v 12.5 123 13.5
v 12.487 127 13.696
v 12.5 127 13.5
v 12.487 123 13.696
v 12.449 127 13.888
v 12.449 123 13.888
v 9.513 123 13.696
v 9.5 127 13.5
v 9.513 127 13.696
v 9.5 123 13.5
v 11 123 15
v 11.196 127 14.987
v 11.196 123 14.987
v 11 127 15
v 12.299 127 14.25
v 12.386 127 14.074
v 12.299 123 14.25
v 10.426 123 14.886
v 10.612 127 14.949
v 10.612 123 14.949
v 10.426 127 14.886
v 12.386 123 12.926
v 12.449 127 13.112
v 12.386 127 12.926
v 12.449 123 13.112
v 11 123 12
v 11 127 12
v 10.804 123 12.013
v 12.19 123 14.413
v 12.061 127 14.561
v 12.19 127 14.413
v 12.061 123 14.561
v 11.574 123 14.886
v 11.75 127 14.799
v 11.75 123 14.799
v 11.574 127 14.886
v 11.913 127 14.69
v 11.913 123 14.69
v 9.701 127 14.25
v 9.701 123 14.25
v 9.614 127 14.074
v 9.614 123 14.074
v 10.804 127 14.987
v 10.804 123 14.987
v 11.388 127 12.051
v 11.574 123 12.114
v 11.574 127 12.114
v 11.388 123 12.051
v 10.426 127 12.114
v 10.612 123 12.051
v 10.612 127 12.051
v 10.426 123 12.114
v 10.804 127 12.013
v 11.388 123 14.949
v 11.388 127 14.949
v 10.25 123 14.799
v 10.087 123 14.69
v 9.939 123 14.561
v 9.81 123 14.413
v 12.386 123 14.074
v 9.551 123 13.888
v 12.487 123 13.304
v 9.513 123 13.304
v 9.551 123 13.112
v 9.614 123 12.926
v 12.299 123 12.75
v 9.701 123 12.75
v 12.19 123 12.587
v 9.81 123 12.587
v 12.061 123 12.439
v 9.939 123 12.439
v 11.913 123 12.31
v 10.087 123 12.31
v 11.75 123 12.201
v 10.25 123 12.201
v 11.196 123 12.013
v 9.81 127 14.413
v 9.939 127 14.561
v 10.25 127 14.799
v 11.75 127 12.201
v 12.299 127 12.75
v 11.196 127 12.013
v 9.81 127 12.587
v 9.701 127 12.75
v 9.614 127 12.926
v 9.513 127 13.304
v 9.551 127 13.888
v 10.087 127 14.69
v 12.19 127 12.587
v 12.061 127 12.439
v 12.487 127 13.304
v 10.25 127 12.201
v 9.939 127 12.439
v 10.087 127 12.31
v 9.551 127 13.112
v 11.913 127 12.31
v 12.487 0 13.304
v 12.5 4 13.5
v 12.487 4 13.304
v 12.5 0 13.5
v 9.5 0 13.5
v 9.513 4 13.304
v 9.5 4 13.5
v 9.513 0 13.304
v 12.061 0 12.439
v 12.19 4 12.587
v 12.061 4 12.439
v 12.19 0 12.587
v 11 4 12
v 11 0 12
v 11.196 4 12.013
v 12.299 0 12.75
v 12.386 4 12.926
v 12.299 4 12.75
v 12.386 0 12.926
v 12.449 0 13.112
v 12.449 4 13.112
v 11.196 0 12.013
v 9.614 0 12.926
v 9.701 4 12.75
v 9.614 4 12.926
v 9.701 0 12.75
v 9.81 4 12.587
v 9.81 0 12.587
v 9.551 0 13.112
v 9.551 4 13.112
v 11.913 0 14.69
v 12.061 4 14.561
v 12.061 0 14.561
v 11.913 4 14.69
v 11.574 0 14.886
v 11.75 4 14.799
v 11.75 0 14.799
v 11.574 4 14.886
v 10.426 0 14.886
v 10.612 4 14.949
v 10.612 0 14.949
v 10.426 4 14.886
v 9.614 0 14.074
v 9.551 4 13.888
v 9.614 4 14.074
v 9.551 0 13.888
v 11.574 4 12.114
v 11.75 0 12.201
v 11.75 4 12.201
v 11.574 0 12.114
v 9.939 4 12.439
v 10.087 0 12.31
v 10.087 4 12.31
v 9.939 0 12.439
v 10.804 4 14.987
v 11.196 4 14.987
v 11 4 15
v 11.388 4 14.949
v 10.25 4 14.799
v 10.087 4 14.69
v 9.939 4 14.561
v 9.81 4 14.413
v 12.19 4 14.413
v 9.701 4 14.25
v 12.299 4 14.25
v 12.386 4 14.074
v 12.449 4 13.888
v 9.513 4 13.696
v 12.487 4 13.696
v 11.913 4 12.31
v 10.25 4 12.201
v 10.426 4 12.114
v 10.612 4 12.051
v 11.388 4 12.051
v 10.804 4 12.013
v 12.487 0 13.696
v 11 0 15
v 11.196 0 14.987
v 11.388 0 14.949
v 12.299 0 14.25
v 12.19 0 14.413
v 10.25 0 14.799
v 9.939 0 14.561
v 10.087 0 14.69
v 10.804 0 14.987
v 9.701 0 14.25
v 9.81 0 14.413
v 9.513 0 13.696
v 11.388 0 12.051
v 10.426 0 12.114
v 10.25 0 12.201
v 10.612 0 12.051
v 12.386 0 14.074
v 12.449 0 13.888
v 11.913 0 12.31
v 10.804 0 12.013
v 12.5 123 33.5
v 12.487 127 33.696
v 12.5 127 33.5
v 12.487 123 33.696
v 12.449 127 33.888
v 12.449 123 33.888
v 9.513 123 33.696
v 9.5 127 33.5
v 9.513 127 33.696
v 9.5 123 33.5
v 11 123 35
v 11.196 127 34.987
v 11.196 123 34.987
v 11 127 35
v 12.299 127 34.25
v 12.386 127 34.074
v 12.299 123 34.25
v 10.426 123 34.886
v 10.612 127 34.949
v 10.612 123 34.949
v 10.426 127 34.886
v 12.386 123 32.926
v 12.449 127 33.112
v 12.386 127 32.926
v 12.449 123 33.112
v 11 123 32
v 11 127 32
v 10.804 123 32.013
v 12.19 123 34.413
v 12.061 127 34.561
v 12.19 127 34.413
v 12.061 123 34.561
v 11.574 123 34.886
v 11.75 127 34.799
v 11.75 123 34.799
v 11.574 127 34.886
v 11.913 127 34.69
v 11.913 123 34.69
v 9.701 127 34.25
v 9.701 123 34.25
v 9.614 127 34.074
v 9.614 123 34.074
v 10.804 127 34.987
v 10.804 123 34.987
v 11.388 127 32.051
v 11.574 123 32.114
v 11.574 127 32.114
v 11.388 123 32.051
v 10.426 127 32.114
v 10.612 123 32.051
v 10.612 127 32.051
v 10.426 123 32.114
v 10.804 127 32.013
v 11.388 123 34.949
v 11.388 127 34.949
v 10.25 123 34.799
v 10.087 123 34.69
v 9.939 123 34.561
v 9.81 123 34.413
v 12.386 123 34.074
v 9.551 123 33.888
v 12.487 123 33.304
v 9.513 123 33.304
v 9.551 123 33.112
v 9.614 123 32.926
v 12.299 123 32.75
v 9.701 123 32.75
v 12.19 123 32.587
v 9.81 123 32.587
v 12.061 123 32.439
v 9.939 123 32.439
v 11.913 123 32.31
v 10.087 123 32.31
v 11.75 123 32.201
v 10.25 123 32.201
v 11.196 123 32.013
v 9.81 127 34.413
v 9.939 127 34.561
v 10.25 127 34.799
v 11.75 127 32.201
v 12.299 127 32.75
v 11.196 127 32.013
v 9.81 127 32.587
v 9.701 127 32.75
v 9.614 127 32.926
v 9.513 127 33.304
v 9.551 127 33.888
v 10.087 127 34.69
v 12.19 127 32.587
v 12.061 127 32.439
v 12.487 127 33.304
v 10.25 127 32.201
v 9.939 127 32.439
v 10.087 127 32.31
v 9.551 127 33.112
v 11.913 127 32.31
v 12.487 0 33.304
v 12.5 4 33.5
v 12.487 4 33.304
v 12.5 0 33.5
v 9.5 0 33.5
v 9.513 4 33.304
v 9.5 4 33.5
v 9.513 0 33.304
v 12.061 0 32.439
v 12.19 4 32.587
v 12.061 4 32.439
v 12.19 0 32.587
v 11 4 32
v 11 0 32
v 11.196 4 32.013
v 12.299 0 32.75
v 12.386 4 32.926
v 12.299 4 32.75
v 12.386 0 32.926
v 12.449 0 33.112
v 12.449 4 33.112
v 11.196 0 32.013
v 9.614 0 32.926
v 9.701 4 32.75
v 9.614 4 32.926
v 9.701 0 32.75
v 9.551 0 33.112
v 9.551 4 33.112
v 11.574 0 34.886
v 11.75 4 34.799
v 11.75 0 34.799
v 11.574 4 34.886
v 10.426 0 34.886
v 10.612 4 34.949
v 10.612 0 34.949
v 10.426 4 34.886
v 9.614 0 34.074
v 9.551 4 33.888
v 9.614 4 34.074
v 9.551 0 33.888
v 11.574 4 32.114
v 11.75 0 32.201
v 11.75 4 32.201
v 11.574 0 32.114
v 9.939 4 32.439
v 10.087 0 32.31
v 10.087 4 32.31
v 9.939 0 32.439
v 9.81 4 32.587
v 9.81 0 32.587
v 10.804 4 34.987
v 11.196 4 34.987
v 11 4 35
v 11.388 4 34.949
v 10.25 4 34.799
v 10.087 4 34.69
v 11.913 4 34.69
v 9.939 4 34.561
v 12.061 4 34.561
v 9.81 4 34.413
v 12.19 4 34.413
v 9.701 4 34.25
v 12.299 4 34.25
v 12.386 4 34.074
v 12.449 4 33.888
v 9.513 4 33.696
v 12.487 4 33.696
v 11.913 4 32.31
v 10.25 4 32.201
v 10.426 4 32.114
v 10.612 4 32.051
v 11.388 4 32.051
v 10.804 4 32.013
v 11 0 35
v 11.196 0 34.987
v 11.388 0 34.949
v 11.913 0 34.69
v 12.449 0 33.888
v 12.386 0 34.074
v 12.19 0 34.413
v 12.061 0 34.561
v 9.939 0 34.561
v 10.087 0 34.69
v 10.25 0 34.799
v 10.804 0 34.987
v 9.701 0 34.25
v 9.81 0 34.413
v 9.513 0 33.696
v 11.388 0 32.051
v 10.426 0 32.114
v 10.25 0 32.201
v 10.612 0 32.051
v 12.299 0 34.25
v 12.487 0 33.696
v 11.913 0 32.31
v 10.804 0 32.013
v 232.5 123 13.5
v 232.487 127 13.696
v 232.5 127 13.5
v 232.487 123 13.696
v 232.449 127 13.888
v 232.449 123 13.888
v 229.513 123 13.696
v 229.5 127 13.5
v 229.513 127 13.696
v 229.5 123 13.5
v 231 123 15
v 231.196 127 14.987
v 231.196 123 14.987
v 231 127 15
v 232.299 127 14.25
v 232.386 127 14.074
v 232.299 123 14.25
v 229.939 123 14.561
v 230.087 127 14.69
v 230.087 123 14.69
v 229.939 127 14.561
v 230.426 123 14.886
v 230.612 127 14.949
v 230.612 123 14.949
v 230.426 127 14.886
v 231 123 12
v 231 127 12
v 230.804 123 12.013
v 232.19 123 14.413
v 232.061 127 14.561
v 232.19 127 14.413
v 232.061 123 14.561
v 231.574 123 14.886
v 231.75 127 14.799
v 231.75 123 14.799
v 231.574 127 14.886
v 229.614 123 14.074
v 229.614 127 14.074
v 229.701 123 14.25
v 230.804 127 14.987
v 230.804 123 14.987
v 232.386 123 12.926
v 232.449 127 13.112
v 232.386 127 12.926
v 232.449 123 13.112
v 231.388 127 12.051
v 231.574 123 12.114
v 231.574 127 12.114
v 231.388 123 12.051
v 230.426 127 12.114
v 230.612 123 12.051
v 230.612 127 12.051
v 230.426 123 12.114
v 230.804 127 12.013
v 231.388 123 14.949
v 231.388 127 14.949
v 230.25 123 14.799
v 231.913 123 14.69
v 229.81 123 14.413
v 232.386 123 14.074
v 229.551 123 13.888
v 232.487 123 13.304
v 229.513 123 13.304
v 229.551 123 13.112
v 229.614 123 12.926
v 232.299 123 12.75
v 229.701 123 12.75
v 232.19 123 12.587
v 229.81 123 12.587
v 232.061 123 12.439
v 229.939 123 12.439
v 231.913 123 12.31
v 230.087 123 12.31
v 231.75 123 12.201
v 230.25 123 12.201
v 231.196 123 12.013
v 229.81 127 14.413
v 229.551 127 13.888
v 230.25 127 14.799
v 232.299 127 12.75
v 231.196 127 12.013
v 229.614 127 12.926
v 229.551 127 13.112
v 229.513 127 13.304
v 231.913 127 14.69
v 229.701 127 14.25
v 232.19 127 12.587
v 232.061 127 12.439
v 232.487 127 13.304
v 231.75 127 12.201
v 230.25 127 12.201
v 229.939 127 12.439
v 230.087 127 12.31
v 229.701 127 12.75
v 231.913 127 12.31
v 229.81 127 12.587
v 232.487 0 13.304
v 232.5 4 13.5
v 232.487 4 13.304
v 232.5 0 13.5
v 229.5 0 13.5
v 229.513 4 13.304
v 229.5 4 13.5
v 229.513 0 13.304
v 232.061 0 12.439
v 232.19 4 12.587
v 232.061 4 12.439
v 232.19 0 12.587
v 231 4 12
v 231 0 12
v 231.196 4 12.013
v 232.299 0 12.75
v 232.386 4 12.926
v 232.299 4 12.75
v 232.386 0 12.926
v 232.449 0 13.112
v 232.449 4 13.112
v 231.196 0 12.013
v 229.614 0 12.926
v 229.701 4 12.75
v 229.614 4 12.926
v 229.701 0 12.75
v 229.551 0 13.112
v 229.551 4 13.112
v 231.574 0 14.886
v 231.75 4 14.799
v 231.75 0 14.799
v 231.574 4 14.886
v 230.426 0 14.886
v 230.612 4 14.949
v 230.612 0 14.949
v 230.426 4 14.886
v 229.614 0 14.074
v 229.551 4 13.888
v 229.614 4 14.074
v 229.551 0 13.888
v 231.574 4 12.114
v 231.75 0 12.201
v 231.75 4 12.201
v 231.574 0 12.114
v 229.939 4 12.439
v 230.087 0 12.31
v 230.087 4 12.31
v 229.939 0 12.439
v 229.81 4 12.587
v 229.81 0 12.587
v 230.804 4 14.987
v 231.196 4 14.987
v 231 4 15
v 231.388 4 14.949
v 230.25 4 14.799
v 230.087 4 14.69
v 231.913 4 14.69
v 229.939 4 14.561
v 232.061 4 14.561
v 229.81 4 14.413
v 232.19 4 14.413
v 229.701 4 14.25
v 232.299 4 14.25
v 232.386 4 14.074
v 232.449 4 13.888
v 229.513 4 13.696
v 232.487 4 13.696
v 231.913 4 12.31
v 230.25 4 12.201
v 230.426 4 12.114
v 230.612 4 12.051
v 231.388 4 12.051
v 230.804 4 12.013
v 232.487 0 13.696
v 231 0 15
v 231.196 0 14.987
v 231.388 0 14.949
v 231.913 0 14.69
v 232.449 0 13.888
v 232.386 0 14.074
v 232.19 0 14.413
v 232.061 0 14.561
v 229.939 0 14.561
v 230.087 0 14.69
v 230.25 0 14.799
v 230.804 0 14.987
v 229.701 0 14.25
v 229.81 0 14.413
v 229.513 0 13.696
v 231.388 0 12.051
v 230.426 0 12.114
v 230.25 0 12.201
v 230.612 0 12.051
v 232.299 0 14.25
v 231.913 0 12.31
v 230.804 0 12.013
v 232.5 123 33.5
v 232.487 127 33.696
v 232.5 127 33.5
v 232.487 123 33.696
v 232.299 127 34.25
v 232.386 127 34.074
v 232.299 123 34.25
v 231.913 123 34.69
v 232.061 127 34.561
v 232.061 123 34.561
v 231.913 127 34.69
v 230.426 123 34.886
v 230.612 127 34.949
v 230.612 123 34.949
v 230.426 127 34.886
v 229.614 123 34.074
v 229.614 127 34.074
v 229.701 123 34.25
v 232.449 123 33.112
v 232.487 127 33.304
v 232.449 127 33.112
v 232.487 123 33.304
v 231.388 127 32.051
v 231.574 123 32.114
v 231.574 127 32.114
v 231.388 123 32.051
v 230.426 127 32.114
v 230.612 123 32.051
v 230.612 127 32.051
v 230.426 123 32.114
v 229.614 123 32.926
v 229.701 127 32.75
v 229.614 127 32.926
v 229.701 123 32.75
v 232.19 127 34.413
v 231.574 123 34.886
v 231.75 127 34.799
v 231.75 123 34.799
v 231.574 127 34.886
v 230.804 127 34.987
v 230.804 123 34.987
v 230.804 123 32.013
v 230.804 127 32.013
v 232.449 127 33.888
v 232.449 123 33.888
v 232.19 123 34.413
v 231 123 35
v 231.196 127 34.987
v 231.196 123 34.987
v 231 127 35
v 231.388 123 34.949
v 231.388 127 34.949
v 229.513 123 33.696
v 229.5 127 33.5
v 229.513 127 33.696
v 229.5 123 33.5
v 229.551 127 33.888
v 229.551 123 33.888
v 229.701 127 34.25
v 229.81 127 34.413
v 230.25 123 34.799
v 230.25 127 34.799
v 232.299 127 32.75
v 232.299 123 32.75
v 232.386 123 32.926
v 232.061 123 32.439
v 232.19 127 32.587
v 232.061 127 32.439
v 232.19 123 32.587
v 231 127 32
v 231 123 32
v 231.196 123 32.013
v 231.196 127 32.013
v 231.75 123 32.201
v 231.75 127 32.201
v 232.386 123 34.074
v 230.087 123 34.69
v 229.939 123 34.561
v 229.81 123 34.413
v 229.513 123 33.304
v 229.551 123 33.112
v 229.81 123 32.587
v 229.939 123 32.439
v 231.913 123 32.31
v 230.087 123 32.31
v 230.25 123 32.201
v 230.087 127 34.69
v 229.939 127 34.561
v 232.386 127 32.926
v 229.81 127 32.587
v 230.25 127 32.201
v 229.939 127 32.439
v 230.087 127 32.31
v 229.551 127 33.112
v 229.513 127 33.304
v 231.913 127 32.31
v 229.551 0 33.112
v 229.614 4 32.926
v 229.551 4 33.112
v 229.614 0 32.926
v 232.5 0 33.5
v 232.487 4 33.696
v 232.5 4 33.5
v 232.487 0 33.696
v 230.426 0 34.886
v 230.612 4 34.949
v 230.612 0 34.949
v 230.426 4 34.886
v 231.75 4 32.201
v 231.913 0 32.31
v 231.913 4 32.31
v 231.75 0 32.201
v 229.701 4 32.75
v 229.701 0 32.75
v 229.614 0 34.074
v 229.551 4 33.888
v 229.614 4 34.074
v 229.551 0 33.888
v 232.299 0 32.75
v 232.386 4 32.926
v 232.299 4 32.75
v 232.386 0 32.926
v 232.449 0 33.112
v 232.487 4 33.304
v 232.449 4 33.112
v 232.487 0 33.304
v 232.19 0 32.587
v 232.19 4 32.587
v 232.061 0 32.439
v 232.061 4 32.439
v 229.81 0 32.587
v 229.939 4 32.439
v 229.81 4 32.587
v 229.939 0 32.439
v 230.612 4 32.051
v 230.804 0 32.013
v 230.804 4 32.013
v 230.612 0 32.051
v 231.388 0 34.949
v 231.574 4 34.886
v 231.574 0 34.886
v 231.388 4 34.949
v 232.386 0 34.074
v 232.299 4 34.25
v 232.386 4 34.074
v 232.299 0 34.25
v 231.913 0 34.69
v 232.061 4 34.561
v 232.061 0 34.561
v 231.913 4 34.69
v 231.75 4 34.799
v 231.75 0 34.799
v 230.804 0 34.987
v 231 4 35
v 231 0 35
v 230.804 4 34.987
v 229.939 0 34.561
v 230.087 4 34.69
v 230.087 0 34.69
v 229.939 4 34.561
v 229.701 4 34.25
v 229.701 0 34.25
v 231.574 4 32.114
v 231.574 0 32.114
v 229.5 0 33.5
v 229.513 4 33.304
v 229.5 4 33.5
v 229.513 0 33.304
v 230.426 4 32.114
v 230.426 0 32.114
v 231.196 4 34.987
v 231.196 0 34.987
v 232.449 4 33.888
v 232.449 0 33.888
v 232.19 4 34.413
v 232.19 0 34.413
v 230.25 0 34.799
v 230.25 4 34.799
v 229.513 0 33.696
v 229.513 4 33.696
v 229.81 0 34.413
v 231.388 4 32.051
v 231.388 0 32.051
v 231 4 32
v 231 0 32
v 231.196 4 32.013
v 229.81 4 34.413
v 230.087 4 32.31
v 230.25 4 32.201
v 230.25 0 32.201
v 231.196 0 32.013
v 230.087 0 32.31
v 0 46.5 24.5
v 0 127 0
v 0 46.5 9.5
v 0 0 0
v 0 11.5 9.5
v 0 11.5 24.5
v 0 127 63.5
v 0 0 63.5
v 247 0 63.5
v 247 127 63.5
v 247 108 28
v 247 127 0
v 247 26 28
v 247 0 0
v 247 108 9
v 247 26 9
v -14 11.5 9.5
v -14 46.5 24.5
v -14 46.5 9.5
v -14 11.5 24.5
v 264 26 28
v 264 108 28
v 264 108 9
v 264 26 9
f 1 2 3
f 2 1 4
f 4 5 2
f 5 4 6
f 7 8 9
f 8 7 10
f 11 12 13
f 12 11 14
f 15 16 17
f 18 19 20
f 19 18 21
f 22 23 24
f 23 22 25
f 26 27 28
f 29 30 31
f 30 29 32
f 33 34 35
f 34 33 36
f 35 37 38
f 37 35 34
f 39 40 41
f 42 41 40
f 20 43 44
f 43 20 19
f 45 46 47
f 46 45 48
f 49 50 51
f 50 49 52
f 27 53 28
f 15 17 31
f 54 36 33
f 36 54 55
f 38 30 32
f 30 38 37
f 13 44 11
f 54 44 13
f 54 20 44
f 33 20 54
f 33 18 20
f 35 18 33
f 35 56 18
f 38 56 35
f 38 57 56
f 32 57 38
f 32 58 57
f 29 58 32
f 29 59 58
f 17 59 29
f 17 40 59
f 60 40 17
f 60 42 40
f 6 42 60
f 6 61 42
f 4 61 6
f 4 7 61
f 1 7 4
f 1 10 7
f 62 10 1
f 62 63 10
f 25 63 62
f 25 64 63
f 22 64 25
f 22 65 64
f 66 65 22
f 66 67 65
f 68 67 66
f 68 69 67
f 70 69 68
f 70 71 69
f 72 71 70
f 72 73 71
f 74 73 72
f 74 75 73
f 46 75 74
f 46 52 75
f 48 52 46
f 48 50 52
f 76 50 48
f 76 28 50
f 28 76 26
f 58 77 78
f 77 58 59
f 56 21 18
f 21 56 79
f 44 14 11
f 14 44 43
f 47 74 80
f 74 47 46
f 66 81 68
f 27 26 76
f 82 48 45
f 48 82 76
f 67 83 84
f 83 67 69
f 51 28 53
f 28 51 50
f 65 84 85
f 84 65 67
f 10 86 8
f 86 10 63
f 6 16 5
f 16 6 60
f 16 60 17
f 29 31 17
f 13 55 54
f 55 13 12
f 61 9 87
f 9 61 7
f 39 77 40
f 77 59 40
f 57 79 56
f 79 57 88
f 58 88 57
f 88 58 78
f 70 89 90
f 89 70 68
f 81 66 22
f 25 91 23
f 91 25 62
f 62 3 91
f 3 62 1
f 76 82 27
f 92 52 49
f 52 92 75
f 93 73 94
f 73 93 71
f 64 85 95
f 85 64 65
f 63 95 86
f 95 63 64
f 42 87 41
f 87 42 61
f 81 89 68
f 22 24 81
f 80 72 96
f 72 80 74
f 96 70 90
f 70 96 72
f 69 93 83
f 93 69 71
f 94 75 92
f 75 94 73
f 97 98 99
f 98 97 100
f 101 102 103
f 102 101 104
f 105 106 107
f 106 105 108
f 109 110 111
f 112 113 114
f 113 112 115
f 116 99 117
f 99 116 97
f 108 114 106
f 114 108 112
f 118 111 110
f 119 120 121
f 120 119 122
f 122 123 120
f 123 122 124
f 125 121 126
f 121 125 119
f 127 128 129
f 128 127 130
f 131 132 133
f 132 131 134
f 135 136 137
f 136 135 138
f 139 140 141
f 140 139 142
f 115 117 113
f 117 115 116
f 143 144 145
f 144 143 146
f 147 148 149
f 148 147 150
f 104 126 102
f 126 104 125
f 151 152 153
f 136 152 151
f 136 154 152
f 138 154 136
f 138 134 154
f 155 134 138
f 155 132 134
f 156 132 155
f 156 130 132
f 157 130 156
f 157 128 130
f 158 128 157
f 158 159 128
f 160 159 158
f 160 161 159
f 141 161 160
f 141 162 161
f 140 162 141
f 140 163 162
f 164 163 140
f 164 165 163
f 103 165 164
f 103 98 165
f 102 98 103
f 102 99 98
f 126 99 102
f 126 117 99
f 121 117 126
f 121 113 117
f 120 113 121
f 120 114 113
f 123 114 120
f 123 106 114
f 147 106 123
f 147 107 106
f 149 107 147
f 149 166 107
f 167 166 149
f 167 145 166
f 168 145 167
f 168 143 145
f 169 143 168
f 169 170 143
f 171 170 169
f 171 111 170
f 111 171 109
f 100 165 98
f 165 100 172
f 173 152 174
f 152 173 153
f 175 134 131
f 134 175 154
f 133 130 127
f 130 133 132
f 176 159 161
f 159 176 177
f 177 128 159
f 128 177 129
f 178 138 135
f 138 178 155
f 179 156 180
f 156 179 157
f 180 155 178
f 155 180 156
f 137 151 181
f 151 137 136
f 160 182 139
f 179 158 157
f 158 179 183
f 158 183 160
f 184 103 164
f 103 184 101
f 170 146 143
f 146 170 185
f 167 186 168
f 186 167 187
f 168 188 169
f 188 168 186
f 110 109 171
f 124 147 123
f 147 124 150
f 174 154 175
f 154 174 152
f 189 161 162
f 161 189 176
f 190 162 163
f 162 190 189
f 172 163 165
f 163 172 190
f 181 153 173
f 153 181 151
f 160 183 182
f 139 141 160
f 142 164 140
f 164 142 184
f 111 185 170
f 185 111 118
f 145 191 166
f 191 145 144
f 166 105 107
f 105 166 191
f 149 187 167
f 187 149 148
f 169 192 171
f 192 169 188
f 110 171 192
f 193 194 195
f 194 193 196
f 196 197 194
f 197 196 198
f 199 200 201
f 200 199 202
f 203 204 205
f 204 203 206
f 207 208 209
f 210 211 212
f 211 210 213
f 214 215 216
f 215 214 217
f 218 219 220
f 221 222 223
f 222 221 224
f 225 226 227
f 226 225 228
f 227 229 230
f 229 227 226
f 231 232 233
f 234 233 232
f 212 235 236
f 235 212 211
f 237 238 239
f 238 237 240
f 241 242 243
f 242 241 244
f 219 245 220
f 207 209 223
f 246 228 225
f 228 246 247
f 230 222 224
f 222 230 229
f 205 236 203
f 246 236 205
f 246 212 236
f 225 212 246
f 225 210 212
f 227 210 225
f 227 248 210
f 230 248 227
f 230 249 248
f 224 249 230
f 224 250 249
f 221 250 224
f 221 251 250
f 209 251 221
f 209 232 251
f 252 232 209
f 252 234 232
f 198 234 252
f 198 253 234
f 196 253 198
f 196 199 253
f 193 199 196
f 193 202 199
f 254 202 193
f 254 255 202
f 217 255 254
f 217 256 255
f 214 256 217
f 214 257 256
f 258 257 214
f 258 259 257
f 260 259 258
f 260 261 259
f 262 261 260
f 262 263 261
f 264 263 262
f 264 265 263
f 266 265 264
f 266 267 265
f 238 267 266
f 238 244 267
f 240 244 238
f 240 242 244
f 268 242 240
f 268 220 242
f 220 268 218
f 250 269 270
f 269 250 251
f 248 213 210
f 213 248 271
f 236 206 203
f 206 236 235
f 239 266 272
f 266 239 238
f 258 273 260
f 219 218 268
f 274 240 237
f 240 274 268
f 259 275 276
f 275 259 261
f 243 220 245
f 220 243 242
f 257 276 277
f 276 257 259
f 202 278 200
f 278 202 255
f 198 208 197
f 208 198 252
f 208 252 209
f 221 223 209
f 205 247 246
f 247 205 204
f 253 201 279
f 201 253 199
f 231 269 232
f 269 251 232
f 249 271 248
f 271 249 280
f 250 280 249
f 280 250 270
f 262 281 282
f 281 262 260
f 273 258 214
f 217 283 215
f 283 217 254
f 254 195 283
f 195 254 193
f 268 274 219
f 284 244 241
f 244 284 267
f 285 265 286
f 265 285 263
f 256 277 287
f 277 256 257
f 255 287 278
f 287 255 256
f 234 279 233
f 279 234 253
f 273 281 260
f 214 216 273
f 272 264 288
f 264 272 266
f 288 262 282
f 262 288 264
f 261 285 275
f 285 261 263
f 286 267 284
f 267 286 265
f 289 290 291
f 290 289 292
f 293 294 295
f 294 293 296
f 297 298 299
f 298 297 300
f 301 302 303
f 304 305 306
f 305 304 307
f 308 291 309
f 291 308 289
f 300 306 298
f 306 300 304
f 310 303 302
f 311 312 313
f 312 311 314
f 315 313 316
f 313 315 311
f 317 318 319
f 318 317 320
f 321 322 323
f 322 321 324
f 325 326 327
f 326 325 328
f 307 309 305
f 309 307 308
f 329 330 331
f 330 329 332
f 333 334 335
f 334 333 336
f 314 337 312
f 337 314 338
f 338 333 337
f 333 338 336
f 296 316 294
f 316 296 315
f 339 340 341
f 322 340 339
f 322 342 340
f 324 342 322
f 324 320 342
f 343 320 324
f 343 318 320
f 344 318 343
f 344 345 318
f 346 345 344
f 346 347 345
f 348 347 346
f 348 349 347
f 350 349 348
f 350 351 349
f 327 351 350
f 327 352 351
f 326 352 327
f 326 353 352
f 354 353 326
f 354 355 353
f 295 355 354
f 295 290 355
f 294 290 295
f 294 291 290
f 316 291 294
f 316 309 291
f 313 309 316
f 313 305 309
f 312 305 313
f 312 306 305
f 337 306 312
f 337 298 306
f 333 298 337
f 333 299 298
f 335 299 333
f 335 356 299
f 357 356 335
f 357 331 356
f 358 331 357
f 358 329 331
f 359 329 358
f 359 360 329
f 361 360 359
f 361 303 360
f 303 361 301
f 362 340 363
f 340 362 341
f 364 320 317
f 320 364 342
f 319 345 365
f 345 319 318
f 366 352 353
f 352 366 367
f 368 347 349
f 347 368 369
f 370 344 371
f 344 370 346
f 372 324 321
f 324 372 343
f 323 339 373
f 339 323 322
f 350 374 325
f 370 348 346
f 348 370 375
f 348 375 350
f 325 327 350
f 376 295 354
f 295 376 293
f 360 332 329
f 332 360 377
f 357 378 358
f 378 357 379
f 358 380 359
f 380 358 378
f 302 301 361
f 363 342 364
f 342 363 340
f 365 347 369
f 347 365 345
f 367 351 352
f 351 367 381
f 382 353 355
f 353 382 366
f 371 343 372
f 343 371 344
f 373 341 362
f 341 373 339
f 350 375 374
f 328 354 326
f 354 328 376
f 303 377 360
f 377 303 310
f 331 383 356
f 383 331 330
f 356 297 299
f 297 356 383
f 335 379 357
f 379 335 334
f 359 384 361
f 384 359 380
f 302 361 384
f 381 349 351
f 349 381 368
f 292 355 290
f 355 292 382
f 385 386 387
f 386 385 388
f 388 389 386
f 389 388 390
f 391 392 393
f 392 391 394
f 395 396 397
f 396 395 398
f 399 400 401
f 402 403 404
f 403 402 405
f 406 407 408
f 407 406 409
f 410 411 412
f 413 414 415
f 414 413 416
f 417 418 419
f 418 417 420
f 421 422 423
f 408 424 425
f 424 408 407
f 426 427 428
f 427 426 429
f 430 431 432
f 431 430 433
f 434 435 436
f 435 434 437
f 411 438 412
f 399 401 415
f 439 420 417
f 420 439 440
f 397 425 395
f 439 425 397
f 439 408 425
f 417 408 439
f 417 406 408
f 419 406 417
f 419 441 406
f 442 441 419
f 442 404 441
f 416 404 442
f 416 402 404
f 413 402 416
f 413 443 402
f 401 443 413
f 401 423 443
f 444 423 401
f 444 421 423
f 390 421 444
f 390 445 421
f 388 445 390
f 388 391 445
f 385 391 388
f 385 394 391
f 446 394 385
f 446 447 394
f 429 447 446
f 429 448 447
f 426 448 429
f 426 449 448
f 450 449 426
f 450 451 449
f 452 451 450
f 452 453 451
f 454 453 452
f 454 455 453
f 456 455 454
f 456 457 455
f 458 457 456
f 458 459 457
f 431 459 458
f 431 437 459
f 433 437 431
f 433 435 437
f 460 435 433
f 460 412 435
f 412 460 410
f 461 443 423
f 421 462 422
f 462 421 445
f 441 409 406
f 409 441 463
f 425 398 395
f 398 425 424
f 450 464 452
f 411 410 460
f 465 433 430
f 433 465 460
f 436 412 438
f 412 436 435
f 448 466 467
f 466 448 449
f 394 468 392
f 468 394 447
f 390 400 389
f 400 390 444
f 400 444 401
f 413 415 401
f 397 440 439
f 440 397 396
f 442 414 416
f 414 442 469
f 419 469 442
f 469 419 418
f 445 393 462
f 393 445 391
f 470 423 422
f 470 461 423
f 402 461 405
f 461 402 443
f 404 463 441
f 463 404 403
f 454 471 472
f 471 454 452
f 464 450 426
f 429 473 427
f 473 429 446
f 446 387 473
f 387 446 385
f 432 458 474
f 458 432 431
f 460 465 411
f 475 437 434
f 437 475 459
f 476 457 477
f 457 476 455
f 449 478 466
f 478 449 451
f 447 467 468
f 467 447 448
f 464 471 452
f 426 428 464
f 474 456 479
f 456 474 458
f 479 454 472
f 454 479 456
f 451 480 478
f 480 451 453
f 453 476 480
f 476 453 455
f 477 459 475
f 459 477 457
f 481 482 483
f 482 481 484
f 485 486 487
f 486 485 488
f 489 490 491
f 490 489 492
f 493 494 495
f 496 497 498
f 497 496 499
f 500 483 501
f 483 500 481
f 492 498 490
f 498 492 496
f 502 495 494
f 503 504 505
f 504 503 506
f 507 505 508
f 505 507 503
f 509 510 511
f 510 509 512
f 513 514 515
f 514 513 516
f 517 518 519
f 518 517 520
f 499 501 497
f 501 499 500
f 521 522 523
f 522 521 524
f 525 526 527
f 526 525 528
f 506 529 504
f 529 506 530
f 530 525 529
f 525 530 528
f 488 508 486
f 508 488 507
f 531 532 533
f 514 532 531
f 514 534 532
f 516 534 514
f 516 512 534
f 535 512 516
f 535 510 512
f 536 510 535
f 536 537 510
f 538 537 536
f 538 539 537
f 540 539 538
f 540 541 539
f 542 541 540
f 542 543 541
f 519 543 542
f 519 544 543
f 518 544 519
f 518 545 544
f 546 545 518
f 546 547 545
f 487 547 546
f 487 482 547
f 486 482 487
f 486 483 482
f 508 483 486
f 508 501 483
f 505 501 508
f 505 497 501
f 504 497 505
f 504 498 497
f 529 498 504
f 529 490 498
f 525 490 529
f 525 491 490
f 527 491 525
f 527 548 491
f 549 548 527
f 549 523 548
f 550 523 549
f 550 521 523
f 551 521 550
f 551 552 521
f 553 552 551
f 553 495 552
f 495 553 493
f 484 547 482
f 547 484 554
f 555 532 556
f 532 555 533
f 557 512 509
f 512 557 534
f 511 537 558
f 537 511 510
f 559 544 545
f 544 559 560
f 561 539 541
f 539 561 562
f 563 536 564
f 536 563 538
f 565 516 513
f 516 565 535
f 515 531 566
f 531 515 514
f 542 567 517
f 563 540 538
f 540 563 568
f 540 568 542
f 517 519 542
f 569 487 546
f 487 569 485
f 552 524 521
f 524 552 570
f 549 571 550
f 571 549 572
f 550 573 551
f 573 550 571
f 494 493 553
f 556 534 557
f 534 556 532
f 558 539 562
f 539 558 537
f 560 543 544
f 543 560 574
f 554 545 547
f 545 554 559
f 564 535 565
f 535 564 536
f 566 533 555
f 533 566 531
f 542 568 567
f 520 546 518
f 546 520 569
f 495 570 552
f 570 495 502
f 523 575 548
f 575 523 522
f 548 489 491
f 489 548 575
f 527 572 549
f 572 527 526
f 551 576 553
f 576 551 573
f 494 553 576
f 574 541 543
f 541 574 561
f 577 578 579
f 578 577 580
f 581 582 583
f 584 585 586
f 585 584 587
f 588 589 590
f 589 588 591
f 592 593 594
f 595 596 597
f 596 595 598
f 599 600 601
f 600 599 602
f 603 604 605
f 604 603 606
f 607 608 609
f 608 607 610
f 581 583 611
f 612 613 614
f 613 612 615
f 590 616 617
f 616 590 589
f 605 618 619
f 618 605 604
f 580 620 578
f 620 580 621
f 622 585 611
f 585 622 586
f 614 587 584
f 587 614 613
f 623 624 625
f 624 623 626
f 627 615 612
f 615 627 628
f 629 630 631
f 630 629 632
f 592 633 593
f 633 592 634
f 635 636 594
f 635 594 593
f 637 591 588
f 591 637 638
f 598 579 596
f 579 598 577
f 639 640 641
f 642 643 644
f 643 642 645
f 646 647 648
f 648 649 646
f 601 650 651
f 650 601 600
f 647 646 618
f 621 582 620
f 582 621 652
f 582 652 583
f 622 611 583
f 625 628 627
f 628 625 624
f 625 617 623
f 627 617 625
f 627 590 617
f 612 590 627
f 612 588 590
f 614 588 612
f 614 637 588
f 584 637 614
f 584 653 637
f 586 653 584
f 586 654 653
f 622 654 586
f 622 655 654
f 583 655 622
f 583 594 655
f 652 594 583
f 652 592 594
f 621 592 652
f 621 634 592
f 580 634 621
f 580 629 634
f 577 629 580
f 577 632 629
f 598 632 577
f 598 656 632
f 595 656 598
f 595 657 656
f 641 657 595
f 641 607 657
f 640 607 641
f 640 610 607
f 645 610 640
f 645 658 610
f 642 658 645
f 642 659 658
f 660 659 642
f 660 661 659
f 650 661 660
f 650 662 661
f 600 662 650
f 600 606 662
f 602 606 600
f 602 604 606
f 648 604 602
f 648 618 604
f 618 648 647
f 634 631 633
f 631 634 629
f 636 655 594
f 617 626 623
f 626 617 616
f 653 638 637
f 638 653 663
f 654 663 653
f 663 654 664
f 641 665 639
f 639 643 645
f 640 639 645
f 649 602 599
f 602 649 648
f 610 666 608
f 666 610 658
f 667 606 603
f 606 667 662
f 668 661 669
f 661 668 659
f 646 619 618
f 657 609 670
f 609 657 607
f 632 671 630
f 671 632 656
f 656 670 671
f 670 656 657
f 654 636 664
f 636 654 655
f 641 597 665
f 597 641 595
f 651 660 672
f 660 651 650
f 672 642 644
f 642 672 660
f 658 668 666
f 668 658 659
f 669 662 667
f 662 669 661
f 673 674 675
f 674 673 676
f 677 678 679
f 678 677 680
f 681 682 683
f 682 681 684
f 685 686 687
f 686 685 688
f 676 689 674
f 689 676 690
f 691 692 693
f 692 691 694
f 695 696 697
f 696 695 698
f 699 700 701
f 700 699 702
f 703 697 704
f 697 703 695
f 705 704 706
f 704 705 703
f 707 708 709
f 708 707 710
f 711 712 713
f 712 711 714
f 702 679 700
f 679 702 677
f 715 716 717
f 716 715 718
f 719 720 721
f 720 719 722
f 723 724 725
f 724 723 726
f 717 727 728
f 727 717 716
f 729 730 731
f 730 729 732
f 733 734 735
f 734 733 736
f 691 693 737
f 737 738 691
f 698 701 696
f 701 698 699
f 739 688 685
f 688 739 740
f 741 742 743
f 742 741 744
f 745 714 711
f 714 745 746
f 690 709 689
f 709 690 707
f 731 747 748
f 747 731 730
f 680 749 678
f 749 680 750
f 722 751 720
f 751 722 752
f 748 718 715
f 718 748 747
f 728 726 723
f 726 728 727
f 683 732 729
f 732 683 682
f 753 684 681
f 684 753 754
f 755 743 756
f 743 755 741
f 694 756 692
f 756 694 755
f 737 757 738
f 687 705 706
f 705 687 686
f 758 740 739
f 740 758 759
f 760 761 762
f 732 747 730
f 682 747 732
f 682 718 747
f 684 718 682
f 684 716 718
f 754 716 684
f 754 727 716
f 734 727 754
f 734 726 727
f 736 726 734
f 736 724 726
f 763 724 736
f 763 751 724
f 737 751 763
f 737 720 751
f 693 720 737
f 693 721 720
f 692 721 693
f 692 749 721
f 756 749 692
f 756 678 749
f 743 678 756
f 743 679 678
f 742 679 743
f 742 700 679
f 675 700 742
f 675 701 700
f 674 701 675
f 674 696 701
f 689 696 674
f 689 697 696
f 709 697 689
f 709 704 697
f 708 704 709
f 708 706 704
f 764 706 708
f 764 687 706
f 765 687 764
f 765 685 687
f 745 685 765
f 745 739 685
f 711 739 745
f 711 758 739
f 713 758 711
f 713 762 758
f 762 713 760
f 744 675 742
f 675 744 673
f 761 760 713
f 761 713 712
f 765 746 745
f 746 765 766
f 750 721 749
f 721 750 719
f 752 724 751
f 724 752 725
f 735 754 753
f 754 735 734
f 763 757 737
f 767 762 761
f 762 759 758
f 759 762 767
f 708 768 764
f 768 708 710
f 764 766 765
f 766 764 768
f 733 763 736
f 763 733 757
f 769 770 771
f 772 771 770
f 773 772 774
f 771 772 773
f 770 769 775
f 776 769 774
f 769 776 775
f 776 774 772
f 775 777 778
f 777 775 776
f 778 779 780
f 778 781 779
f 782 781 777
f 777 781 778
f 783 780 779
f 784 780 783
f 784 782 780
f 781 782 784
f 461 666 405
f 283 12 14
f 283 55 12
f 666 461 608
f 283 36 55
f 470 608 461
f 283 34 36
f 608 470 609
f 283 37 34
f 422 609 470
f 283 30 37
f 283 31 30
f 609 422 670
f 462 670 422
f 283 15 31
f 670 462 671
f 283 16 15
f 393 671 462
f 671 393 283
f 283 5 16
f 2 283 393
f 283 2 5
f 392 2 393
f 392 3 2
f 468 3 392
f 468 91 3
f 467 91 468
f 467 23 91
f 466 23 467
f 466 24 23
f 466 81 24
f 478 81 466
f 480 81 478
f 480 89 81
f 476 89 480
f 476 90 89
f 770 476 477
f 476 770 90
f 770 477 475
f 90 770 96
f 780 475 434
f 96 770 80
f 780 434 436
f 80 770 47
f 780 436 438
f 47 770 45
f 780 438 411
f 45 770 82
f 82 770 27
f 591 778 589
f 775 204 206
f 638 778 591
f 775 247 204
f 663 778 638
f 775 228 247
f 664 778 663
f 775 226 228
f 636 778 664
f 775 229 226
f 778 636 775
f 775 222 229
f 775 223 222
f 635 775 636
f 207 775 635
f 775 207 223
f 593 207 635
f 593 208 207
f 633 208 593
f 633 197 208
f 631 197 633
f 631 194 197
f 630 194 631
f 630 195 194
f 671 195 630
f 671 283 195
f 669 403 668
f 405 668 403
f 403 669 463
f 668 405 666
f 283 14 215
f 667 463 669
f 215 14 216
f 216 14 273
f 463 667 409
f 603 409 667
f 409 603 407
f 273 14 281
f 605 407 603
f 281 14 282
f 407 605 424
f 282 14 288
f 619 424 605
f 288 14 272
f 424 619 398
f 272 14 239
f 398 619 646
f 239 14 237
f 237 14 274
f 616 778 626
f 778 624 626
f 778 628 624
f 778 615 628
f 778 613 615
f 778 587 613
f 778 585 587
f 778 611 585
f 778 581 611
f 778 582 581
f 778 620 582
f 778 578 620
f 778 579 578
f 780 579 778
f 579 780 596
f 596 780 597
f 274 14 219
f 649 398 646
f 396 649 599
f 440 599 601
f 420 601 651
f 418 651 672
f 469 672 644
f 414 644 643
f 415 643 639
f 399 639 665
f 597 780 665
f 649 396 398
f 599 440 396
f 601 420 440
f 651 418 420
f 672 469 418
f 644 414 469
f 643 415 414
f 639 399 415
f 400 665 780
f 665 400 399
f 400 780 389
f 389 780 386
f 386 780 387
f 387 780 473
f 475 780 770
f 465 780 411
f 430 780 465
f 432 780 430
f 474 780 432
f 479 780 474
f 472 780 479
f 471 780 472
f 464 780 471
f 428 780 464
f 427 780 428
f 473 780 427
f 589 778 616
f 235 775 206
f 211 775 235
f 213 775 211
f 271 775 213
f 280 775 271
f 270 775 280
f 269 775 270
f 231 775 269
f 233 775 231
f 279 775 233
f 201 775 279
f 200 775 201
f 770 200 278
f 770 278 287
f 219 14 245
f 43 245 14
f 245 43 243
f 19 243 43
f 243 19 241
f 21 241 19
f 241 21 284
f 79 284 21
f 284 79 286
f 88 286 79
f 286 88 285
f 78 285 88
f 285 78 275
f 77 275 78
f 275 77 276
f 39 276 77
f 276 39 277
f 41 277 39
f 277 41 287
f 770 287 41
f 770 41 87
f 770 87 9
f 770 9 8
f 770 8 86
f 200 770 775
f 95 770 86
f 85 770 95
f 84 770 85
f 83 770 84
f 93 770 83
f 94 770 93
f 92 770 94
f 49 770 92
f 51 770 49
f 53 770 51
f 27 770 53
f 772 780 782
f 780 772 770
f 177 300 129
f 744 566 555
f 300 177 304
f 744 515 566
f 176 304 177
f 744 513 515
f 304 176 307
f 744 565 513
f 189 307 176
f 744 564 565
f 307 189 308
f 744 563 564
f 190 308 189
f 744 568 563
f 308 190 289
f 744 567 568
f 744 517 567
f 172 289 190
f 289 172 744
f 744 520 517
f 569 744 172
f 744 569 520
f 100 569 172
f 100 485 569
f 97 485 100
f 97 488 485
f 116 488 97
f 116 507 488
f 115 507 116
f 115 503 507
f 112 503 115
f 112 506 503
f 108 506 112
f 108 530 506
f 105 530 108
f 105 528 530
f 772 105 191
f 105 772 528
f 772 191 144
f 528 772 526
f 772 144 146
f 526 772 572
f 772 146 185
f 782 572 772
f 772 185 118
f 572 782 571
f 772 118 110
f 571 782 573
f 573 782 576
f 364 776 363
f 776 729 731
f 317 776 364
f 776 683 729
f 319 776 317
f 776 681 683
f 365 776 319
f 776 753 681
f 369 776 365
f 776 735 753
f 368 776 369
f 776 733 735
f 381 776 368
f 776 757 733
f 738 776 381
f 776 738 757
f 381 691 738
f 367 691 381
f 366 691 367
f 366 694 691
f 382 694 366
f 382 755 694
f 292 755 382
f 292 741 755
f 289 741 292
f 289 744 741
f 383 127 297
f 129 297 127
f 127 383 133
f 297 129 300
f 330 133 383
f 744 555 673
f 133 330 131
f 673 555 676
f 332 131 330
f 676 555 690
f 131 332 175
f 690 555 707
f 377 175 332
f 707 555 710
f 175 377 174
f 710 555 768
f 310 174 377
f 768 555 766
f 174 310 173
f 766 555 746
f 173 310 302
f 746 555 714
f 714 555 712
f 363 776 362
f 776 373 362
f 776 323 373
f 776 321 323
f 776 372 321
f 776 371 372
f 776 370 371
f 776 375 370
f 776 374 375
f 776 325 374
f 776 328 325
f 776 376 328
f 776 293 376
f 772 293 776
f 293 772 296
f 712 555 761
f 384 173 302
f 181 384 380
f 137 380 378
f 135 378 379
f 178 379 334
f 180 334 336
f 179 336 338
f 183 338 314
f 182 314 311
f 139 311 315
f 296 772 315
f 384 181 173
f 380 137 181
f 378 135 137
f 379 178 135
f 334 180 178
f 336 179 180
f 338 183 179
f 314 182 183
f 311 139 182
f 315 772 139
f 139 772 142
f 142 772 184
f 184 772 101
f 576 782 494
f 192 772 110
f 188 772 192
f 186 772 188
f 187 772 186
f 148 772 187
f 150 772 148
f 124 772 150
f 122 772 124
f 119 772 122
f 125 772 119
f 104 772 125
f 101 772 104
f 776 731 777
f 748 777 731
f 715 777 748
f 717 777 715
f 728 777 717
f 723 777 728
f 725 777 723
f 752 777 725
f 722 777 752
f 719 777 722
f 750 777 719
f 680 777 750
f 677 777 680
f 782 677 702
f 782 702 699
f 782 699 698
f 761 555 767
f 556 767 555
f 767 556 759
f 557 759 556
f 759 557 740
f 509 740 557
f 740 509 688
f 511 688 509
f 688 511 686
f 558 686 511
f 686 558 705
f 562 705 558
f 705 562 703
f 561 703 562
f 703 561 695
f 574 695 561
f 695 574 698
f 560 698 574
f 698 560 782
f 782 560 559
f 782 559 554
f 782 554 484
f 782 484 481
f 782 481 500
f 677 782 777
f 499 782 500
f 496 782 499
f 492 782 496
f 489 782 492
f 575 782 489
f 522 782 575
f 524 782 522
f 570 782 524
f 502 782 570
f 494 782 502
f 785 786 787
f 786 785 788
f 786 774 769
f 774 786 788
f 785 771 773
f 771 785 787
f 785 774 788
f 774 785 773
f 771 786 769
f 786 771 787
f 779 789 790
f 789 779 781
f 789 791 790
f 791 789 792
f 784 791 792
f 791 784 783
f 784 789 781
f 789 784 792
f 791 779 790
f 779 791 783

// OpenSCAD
// file: ../../../conf/constants.scad
/**********************************************************************************************************************
 **
 ** conf/constants.scad
 **
 ** This file contains constants and aliases used for the part size definitions.
 **
 **********************************************************************************************************************/

/**
 * The alias names for the rails.
 * A is the "front left" rail, B the "front right" rail, C the back rail.
 * These constants are also used for the sides of the frame and the effector; in this case, side A is the one 
 * opposing rail A.
 */
A = 0;
B = 1;
C = 2;

/**
 * Aliases for metric screw/nut sizes.
 */
M2 = 2;
M3 = 3;
M4 = 4;
M5 = 5;
M8 = 8;

/** 
 * Aliases for NEMA stepper motors.
 */
NEMA14 = 14;
NEMA17 = 17;
NEMA23 = 23;

/**
 * The various types of effector heads supported.
 */
EFFECTOR_DUMMY      = 0;
EFFECTOR_E3D_V6LITE = 1;
// main file
/**********************************************************************************************************************
 **
 ** parts/vitamins/electronic/mwps_case_926a.scad
 **
 ** This file renders a power supply case designated as "Case No. 926A" in the MeanWell data sheets.
 **
 **********************************************************************************************************************/

include <../../../conf/part_sizes.scad>

$fn = 48;

// Convention: the "front" side is the one aligned to the Y axis (front if primary is left, secondary right).

module _mwps_screw_hole(front = true) {
	translate([0, front ? -epsilon() : mwps_width() + epsilon(), 0])
		rotate([front ? -90 : 90, 0, 0])
			cylinder(d = mpws_screw_diameter(), h = mpws_screw_depth() + epsilon());
}

module _mwps_case_926a() {
	union() {
	
		color("LightGray")
			difference() {
				// the basic shape of the case
				cube([mwps_length(), mwps_width(), mwps_height()]);
		
				// minus the screw holes
				translate([mpws_pri_screw_offset(), 0, mpws_lower_screw_height()]) {
					_mwps_screw_hole(front = false);
					_mwps_screw_hole(front = true);
				}
				translate([mpws_pri_screw_offset(), 0, mpws_upper_screw_height()]) {
					_mwps_screw_hole(front = false);
					_mwps_screw_hole(front = true);
				}
				translate([mwps_length() - mpws_sec_screw_offset(), 0, mpws_lower_screw_height()]) {
					_mwps_screw_hole(front = false);
					_mwps_screw_hole(front = true);
				}
				translate([mwps_length() - mpws_sec_screw_offset(), 0, mpws_upper_screw_height()]) {
					_mwps_screw_hole(front = false);
					_mwps_screw_hole(front = true);
				}
			}
		
		color("Black") {
			// plus the primary terminal block placeholder
			translate([-mwps_pri_term_length(), mwps_pri_term_offset_y(), mwps_pri_term_offset_z()])
				cube([mwps_pri_term_length(), mwps_pri_term_width(), mwps_pri_term_height()]);
		
			// plus the secondary terminal block placeholder
			translate([mwps_length(), mwps_sec_term_offset_y(), mwps_sec_term_offset_z()])
				cube([mwps_sec_term_length(), mwps_sec_term_width(), mwps_sec_term_height()]);
		}
	}
}

_mwps_case_926a();
